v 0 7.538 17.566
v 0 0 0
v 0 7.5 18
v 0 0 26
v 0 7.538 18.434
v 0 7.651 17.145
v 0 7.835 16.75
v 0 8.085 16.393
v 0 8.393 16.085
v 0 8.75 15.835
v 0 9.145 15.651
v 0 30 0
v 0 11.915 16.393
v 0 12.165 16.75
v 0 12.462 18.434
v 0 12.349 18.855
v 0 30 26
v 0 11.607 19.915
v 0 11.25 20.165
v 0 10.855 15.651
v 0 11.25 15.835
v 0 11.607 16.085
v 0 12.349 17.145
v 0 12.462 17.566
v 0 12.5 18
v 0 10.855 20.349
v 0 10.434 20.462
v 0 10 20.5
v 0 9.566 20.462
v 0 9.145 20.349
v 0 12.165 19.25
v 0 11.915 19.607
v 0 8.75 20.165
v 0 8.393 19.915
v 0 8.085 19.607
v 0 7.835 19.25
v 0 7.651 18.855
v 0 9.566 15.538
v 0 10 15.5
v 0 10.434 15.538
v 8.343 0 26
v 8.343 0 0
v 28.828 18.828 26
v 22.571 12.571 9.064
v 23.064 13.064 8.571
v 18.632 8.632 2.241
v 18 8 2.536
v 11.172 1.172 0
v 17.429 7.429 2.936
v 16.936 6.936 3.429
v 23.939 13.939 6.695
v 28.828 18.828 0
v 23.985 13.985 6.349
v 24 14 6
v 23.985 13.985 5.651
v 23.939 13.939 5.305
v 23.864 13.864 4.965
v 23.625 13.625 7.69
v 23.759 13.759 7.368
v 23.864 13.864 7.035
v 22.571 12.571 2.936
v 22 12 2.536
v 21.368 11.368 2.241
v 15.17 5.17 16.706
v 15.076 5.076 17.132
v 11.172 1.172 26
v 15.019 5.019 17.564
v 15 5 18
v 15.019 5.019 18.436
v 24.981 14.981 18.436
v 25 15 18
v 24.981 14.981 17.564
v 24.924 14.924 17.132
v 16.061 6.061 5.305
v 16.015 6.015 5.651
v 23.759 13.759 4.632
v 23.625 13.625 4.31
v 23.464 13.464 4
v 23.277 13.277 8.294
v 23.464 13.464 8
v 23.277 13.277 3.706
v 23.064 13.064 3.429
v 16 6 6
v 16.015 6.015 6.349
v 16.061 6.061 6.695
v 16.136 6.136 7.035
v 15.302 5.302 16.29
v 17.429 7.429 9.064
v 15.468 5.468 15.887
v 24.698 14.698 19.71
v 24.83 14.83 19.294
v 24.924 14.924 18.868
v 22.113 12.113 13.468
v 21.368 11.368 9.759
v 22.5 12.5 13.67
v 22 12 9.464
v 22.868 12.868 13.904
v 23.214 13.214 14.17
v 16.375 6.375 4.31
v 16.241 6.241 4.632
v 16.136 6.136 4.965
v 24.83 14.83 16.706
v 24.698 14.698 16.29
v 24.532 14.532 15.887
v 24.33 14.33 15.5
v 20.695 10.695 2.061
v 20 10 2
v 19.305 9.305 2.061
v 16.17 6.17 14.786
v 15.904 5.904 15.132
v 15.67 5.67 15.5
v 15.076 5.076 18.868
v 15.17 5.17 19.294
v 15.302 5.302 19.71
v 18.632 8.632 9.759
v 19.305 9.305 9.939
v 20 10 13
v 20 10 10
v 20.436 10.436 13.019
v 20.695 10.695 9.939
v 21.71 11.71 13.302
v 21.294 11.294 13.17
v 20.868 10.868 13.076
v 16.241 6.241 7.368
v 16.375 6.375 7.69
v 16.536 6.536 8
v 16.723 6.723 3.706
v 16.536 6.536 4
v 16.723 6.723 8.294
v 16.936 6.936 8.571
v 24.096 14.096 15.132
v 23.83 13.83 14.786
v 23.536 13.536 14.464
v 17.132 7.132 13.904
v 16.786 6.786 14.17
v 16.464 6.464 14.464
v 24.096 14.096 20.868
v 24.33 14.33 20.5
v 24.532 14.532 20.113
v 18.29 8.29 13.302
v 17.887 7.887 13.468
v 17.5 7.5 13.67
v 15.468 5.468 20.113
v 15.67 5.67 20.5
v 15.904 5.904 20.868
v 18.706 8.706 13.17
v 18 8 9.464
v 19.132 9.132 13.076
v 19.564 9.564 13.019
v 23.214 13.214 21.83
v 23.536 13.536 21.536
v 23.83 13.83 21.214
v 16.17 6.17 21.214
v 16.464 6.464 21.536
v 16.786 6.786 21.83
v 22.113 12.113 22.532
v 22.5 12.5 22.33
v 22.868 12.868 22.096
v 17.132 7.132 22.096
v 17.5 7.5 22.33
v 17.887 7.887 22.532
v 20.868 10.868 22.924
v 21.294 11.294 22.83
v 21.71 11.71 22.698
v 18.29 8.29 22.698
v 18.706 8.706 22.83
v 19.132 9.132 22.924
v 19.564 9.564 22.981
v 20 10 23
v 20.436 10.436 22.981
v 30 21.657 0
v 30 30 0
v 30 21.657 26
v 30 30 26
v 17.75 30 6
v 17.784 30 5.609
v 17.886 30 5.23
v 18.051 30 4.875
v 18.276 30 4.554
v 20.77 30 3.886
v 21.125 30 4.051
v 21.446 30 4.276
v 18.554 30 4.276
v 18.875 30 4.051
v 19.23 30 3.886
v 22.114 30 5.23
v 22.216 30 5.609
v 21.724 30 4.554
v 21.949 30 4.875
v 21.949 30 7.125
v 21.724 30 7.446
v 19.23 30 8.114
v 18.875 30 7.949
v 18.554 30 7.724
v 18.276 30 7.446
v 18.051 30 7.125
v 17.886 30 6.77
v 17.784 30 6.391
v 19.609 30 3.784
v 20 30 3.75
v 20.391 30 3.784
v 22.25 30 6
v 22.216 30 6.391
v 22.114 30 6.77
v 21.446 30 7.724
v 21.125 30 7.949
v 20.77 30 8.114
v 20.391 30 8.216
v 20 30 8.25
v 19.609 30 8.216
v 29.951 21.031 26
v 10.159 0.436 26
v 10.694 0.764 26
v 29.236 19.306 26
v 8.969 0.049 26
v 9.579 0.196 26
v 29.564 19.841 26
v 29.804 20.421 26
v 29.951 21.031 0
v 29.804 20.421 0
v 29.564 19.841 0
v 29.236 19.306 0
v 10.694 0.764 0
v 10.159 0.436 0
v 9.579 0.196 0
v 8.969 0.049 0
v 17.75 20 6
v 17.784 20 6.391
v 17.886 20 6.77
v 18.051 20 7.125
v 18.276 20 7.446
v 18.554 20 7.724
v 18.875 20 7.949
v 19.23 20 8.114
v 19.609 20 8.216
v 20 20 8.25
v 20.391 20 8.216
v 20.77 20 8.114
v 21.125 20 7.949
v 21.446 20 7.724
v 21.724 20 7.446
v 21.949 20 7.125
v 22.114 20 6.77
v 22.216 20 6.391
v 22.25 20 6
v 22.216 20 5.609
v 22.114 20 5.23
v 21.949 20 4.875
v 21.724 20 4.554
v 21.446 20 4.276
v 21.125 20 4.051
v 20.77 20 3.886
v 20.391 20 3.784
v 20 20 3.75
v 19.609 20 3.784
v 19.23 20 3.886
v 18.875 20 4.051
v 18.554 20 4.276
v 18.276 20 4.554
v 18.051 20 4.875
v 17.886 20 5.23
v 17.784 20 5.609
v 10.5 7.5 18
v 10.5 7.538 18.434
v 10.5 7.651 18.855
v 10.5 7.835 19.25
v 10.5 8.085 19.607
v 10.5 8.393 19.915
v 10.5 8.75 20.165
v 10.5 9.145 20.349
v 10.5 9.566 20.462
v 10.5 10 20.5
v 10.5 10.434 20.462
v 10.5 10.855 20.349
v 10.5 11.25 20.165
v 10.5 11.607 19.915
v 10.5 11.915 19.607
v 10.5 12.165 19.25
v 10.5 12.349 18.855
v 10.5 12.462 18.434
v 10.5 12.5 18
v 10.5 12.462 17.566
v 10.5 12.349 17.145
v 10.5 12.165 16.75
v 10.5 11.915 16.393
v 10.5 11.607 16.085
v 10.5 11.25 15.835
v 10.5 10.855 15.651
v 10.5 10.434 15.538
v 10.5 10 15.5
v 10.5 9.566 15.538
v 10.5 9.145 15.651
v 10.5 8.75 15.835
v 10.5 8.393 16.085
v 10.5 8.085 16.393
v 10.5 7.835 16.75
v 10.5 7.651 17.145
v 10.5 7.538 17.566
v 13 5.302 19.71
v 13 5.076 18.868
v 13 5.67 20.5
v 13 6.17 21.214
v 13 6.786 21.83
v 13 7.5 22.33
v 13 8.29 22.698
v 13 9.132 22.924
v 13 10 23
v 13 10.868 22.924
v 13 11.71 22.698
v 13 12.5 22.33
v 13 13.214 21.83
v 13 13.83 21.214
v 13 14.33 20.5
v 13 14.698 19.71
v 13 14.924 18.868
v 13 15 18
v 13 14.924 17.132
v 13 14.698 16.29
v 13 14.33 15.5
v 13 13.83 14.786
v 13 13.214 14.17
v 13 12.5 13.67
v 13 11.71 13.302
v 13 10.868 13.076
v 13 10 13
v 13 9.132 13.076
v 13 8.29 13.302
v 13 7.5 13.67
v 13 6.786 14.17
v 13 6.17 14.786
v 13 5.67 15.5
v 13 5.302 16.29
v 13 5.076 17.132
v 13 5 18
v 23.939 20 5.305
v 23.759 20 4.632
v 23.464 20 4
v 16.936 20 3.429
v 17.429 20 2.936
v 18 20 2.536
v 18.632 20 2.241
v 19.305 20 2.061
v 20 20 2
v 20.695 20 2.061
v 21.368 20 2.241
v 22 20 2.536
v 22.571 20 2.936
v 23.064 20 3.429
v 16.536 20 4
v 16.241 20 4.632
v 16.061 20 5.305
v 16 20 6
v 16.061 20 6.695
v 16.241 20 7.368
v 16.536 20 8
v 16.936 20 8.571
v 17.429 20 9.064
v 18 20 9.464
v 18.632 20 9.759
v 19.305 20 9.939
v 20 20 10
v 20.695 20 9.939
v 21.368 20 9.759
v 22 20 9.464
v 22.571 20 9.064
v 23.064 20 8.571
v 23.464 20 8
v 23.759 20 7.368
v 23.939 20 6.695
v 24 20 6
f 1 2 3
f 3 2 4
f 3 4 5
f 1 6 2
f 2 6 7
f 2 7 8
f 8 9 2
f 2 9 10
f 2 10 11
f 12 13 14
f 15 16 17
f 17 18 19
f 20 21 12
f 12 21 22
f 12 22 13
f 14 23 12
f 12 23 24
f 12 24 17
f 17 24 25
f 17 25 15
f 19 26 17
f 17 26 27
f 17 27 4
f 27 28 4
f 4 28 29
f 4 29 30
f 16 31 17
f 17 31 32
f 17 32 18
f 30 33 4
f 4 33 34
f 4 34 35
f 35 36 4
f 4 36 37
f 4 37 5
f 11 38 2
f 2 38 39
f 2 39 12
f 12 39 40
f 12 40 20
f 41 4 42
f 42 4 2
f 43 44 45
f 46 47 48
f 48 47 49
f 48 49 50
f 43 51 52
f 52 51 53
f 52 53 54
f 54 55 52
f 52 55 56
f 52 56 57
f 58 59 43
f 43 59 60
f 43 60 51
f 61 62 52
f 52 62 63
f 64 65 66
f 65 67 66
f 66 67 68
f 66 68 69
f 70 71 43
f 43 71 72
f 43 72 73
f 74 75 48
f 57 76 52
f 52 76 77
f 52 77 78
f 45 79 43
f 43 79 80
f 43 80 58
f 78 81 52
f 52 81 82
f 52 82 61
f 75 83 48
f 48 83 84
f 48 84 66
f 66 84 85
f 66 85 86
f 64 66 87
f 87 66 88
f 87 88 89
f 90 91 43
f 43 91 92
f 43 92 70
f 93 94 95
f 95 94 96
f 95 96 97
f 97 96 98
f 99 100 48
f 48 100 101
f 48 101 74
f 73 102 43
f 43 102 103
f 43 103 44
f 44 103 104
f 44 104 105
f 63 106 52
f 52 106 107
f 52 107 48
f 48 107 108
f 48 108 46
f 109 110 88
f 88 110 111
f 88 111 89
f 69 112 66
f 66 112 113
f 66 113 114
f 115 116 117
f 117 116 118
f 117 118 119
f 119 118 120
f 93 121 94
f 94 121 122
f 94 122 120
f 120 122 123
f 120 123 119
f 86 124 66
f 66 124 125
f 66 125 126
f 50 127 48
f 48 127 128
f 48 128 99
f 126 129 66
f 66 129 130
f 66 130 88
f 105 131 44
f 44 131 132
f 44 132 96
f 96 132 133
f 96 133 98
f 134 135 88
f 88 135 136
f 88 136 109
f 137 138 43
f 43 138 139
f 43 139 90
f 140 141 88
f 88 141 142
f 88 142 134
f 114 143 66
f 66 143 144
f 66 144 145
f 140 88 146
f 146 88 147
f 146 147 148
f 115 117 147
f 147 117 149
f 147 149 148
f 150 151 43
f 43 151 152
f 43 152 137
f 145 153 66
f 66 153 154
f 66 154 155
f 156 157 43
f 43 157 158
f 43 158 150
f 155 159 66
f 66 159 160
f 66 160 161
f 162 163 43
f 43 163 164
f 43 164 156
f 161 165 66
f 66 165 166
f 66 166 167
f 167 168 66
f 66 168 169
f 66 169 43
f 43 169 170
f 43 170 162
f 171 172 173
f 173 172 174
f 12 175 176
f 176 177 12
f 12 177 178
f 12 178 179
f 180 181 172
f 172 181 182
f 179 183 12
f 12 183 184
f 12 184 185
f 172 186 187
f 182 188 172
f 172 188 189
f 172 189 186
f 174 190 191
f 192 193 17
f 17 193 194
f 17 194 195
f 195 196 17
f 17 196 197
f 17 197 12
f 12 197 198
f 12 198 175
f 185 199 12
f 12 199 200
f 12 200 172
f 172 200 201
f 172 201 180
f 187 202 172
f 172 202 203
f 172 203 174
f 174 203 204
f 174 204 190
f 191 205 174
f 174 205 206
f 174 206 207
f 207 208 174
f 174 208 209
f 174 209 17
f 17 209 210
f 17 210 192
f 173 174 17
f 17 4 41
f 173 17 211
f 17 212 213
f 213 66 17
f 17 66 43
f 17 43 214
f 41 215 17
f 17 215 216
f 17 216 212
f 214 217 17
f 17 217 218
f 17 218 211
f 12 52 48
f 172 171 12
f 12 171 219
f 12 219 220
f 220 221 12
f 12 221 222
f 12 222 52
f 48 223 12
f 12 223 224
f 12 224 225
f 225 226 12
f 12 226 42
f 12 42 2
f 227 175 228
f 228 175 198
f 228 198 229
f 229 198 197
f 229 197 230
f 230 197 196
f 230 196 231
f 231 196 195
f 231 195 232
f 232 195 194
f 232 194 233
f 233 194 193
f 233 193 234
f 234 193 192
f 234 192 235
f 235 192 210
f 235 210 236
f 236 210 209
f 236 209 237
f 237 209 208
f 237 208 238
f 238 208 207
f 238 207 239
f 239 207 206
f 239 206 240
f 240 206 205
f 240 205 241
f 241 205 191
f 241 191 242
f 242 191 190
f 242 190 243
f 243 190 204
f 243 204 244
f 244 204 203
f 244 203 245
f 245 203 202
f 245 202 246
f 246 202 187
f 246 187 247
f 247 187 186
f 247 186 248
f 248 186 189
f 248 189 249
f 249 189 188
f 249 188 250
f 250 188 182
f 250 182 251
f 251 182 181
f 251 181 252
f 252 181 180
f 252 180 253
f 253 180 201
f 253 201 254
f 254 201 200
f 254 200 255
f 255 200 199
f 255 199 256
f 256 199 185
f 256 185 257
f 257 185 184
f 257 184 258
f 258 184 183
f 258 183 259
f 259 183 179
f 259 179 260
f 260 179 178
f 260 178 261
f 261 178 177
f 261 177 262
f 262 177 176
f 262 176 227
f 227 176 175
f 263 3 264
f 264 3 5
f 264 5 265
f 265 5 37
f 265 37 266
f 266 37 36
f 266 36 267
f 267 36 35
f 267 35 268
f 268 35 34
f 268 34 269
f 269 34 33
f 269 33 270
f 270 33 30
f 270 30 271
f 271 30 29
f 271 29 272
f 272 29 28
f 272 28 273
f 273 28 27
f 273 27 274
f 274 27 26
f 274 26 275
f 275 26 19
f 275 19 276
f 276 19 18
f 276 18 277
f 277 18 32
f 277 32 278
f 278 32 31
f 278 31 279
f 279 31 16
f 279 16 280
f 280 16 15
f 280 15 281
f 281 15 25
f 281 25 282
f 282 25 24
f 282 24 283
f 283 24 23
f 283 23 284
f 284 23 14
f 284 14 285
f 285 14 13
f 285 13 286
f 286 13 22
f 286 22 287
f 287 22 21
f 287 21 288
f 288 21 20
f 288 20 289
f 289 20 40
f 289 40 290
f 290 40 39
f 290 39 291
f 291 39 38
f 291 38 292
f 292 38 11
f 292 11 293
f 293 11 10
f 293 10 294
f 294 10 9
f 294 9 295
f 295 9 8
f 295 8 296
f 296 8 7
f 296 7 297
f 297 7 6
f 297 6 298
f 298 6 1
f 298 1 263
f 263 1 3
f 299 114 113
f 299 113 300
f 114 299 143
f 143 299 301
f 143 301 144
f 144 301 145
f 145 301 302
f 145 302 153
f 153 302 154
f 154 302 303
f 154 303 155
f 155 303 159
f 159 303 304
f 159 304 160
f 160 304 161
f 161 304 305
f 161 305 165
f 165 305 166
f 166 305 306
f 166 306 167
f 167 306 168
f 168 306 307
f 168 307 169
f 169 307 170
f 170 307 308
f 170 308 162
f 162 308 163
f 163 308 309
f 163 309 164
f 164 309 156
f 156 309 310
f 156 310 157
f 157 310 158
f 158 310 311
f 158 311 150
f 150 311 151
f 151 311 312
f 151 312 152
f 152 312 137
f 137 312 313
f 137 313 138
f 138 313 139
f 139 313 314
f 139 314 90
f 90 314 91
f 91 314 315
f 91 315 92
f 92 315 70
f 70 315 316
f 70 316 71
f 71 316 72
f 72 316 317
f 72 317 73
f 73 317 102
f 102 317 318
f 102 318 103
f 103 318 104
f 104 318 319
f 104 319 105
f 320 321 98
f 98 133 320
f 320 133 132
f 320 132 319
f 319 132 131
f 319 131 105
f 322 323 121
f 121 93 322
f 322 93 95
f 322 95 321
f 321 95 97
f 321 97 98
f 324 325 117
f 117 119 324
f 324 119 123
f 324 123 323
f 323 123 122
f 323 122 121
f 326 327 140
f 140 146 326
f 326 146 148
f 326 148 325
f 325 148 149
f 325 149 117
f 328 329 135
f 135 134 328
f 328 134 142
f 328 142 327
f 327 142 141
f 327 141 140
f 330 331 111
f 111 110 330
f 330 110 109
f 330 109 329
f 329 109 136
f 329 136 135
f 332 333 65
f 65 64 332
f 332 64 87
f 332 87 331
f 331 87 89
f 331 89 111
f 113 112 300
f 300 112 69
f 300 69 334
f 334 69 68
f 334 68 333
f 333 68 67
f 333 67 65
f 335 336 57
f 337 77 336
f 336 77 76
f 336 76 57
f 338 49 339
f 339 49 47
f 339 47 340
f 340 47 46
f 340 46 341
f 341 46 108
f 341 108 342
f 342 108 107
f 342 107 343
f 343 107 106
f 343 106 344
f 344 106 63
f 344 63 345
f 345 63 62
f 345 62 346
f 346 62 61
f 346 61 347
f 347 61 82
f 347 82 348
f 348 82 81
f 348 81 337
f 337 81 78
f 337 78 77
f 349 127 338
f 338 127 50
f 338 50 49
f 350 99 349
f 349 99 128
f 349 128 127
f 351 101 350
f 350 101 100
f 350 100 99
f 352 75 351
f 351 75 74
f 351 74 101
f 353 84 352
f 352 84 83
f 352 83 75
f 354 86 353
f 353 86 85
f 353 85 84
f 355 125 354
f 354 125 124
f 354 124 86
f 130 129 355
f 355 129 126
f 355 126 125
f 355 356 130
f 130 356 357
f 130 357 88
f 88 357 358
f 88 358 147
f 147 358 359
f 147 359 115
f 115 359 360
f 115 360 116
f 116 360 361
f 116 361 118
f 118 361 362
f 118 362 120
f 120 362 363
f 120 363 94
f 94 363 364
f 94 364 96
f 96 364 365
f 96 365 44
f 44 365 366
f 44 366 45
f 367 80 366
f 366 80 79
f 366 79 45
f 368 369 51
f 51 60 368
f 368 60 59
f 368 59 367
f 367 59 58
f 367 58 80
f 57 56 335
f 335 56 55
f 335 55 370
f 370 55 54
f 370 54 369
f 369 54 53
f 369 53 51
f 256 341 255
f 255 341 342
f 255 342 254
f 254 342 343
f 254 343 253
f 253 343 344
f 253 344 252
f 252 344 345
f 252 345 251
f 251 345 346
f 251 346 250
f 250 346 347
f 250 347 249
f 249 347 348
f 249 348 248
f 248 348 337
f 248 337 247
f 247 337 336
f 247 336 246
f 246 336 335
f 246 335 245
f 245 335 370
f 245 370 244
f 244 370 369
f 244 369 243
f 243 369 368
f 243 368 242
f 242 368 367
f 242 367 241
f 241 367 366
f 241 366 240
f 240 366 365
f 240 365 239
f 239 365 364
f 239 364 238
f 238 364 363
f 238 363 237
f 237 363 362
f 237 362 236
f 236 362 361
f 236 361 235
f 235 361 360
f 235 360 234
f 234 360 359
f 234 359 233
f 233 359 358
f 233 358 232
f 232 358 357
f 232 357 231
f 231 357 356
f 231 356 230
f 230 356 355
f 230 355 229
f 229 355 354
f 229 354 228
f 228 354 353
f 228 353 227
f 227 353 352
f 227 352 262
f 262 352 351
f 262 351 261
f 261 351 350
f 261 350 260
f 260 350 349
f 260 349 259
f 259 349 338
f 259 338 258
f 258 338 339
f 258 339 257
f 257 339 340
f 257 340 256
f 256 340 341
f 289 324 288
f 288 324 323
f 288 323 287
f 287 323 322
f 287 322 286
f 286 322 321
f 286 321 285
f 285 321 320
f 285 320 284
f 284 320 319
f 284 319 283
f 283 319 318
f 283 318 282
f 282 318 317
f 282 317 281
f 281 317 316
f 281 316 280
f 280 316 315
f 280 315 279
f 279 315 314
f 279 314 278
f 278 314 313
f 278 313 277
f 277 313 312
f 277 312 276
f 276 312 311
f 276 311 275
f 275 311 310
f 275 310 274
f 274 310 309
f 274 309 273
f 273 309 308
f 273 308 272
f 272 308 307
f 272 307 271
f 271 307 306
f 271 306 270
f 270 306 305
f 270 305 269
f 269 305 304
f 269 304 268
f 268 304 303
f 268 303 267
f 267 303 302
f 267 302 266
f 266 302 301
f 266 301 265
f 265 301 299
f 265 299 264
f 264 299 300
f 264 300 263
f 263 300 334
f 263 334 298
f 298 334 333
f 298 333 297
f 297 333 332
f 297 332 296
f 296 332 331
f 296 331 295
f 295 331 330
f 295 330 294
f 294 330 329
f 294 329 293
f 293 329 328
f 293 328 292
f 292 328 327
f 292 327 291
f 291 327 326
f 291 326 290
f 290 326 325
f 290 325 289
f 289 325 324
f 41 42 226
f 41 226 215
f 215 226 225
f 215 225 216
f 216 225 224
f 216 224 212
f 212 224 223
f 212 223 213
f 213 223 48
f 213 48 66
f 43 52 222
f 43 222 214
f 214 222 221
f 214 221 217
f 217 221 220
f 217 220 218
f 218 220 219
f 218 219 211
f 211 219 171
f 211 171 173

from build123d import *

# Parameters (mm, degrees)
BOSS_EXTRUDE1_DEPTH = 26
SKETCH3_R           = 2.25
CUT_EXTRUDE1_DEPTH  = 50.759421218
SKETCH2_R           = 2.5
CUT_EXTRUDE2_DEPTH  = 50.759421218
SKETCH4_R           = 5
CUT_EXTRUDE3_DEPTH  = 45.452221542
SKETCH5_R           = 4
CUT_EXTRUDE4_DEPTH  = 45.452221542
CHAMFER1_SIZE       = 3
FILLET2_R           = 4


with BuildPart() as part:
    # Sketch1 → Boss-Extrude1 (new body)
    with BuildSketch(Plane.XY):
        Polygon((0, 0), (10, 0), (30, 20), (30, 30), (0, 30), align=None)
    extrude(amount=BOSS_EXTRUDE1_DEPTH)

    # Sketch3 → Cut-Extrude1 (cut, through all)
    with BuildSketch(Plane(origin=(0, 30, 0), x_dir=(1, 0, 0), z_dir=(0, 1, 0))):
        with Locations(Location((20, -6, 0), (0, 0, 180))):
            Circle(SKETCH3_R)
    extrude(amount=-CUT_EXTRUDE1_DEPTH, mode=Mode.SUBTRACT)

    # Sketch2 → Cut-Extrude2 (cut, through all)
    with BuildSketch(Plane.ZY):
        with Locations(Location((18, 10, 0), (0, 0, 270))):
            Circle(SKETCH2_R)
    extrude(amount=-CUT_EXTRUDE2_DEPTH, mode=Mode.SUBTRACT)

    # Sketch4 → Cut-Extrude3 (cut, through all)
    with BuildSketch(Plane.ZY.offset(-10)):
        with Locations(Location((18, 10, 0), (0, 0, 270))):
            Circle(SKETCH4_R)
    extrude(amount=-CUT_EXTRUDE3_DEPTH, mode=Mode.SUBTRACT)

    # Sketch5 → Cut-Extrude4 (cut, through all)
    with BuildSketch(Plane(origin=(0, 20, 0), x_dir=(1, 0, 0), z_dir=(0, 1, 0))):
        with Locations(Location((20, -6, 0), (0, 0, 180))):
            Circle(SKETCH5_R)
    extrude(amount=-CUT_EXTRUDE4_DEPTH, mode=Mode.SUBTRACT)

    # Chamfer1
    # the kernel refuses this chamfer: 3 mm, written as the material it adds along each edge
    with BuildSketch(Plane(origin=(10, 10, 18), x_dir=(0, -1, 0), z_dir=(0, 0, -1))) as chamfer1_piece_1_section:
        Polygon((5, -CHAMFER1_SIZE), (5 - CHAMFER1_SIZE, 0), (5, 0), align=None)
    chamfer1_piece_1 = revolve(axis=Axis((10, 10, 18), (-1, 0, 0)), mode=Mode.PRIVATE)
    chamfer1_piece_1 = chamfer1_piece_1 - Plane(origin=(11.757355127, 10, 18), x_dir=(0, -1, 0), z_dir=(-1, 0, 0)) * Cylinder(2.5, 20, mode=Mode.PRIVATE)
    add(chamfer1_piece_1)

    # Fillet2
    fillet2_edges = [part.edges().sort_by_distance(p)[0] for p in [
        (30, 20, 13),
        (10, 0, 13),
    ]]
    fillet(fillet2_edges, radius=FILLET2_R)


solid = part.part
